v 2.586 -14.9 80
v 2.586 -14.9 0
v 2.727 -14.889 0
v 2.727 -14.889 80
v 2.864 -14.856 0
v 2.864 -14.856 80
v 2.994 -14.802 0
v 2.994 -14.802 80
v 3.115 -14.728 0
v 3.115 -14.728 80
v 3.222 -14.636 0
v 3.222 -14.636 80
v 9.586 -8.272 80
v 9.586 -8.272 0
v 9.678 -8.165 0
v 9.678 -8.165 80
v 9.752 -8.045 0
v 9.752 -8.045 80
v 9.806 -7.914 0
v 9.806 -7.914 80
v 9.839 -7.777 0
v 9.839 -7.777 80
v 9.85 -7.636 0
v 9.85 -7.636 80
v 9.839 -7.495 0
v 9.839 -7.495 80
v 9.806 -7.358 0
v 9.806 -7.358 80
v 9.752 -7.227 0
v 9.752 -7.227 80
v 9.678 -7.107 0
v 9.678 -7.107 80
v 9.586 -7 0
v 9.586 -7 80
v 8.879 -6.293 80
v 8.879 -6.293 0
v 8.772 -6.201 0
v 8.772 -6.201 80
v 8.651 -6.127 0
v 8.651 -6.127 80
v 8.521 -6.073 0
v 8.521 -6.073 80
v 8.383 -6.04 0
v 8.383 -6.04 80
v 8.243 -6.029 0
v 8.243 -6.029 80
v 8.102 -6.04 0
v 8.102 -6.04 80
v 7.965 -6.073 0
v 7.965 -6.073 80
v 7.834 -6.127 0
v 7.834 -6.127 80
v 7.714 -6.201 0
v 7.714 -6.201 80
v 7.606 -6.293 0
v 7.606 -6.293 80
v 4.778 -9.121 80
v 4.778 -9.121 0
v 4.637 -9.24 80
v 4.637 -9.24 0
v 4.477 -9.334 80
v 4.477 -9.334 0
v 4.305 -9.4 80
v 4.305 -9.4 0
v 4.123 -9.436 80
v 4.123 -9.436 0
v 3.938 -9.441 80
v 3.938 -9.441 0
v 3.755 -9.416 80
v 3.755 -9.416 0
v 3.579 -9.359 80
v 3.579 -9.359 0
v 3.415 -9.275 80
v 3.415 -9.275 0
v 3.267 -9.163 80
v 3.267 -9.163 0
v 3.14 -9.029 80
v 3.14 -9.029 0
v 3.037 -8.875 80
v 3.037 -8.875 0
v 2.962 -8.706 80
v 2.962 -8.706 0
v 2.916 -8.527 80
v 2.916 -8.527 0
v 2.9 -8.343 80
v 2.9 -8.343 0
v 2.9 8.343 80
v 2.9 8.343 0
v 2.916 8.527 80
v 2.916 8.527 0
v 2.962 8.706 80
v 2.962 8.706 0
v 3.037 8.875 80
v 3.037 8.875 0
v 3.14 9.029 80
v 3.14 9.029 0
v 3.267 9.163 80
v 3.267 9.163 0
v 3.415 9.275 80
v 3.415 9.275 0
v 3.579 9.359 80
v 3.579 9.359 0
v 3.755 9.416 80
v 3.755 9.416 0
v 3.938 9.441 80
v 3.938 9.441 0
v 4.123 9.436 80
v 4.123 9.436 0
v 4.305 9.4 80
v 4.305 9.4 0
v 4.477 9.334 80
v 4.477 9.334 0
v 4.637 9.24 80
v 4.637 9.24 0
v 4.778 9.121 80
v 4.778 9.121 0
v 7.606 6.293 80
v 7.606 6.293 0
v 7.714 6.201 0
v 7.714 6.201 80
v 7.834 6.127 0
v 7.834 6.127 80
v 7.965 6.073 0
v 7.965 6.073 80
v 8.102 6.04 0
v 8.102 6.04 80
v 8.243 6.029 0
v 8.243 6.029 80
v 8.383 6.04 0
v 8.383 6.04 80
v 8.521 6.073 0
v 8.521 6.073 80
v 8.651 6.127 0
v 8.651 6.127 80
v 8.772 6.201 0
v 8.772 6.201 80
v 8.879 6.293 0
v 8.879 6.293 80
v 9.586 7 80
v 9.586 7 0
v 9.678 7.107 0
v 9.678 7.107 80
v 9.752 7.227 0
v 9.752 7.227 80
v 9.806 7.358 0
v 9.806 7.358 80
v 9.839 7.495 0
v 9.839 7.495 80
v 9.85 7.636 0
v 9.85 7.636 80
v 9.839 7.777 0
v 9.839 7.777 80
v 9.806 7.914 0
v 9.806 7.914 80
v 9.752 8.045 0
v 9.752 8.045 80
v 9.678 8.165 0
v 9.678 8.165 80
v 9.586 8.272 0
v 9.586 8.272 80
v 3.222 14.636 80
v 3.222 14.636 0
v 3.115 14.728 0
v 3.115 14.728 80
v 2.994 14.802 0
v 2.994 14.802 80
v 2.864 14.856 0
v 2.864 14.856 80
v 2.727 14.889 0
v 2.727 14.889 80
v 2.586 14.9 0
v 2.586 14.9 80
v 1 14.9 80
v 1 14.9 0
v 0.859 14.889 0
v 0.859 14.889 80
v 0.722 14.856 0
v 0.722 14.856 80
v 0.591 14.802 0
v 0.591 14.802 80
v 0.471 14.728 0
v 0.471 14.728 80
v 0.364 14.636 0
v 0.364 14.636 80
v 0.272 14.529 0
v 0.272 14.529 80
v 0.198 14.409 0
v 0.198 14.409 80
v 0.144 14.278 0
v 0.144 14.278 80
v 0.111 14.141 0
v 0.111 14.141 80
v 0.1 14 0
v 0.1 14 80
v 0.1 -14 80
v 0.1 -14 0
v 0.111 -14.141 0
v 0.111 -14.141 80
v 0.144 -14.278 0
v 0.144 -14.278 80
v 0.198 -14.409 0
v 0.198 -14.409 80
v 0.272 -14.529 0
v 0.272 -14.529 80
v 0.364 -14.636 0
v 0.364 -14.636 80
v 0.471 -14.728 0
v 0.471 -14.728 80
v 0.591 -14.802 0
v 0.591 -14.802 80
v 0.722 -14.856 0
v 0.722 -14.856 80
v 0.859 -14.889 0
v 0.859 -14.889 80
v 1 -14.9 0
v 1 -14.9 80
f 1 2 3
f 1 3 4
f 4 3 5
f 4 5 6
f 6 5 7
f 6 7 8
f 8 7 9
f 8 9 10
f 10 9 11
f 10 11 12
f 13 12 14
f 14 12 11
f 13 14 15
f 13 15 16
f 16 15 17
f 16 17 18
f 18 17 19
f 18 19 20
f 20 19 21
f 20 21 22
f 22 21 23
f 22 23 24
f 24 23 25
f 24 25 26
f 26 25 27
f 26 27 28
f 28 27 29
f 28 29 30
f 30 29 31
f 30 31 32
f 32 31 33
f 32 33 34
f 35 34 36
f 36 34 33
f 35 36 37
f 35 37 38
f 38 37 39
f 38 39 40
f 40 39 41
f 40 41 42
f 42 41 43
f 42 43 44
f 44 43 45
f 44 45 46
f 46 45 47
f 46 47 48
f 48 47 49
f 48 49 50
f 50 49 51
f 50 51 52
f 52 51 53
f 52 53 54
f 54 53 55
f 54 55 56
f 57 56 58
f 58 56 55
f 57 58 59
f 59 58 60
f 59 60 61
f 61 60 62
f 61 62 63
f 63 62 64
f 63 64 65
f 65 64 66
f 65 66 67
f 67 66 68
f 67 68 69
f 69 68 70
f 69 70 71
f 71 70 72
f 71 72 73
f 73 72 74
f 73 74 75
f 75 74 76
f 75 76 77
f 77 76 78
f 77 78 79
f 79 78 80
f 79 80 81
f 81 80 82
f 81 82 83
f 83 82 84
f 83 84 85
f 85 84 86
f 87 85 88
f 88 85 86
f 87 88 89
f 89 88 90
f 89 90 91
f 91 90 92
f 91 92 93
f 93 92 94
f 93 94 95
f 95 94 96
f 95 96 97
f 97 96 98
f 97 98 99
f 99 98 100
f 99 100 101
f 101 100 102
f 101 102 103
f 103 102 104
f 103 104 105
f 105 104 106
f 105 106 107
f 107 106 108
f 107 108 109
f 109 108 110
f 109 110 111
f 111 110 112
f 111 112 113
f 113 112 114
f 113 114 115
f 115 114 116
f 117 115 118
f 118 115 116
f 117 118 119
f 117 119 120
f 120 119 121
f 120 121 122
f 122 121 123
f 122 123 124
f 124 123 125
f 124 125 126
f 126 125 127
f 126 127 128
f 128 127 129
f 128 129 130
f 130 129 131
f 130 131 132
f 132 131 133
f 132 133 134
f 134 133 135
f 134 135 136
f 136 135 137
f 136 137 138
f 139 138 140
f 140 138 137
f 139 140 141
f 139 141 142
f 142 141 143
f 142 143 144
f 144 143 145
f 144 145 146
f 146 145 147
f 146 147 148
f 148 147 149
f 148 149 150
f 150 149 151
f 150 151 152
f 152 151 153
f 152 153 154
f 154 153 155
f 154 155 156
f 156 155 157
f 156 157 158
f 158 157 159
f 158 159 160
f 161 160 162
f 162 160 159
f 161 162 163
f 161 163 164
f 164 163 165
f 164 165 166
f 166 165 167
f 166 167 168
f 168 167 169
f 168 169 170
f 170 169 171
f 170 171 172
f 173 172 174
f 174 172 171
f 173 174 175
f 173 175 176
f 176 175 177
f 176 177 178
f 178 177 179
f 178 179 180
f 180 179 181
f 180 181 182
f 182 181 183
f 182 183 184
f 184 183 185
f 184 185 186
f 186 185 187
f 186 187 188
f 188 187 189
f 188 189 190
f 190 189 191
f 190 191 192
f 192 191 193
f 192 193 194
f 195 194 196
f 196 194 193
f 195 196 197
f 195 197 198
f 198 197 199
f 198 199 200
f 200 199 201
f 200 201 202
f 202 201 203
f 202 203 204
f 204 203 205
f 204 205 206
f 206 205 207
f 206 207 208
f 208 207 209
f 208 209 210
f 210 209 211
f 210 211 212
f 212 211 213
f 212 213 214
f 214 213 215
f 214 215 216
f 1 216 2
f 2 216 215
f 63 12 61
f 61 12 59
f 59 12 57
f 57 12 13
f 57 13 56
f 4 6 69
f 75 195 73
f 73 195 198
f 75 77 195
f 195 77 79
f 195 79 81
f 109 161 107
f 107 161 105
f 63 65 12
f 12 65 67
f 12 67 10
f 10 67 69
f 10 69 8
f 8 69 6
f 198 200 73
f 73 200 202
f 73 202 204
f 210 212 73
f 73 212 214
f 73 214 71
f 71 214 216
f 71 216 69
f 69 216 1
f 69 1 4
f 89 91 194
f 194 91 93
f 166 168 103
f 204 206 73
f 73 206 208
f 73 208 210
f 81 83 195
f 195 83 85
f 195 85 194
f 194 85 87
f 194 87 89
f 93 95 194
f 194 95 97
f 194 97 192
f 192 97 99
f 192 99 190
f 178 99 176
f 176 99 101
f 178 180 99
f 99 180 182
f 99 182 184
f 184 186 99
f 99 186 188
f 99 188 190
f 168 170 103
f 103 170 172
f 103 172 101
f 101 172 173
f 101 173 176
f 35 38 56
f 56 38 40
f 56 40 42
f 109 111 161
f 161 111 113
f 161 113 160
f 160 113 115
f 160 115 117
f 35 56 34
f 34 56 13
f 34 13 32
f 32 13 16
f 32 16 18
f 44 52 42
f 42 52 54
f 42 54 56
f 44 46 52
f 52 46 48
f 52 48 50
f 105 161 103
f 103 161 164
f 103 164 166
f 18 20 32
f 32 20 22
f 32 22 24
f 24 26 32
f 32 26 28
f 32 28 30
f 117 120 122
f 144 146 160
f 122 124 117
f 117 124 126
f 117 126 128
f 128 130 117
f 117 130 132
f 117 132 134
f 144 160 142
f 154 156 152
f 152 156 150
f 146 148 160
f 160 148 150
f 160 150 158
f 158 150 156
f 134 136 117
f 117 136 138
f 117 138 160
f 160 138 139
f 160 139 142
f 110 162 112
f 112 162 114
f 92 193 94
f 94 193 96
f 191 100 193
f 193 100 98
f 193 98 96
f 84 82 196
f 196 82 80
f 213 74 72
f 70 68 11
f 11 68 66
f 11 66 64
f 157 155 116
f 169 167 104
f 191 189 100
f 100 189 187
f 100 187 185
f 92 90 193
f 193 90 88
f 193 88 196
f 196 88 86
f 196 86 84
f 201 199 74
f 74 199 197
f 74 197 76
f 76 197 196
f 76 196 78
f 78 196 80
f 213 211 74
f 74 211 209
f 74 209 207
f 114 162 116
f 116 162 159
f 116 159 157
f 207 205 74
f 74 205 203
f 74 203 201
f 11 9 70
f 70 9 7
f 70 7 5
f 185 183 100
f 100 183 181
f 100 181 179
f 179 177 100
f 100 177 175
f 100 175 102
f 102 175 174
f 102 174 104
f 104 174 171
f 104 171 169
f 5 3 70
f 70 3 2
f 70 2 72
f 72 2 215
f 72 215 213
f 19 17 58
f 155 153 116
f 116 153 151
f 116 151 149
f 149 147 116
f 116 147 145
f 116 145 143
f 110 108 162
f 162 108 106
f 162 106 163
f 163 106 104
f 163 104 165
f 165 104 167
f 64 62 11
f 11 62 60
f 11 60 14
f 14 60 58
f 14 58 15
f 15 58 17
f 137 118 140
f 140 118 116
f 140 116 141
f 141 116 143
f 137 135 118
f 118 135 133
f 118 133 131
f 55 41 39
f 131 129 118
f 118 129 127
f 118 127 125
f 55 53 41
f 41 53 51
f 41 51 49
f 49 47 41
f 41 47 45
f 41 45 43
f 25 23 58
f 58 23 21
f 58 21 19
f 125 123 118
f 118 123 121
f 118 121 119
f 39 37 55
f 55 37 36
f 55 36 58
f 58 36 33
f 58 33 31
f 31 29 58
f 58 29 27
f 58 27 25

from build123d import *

# Parameters (mm, degrees)
BOSS_EXTRU_1_DEPTH = 80


with BuildPart() as part:
    # Esquisse1 → Boss.-Extru.1 (new body)
    with BuildSketch(Plane.XY):
        with BuildLine():
            Line((2.9, 0), (0.1, 0))
            Line((0.1, 0), (0.1, -14))
            ThreePointArc((0.1, -14), (0.363603897, -14.636396103), (1, -14.9))
            Line((1, -14.9), (2.585786438, -14.9))
            ThreePointArc((2.585786438, -14.9), (2.930201527, -14.831491579), (3.222182541, -14.636396103))
            Line((3.222182541, -14.636396103), (9.586143571, -8.272435072))
            ThreePointArc((9.586143571, -8.272435072), (9.849747468, -7.636038969), (9.586143571, -6.999642866))
            Line((9.586143571, -6.999642866), (8.87903679, -6.292536085))
            ThreePointArc((8.87903679, -6.292536085), (8.242640687, -6.028932188), (7.606244584, -6.292536085))
            Line((7.606244584, -6.292536085), (4.777817459, -9.12096321))
            ThreePointArc((4.777817459, -9.12096321), (3.579048224, -9.359413236), (2.9, -8.343145751))
            Line((2.9, -8.343145751), (2.9, 0))
        make_face()
        with BuildLine():
            Line((0.1, 14), (0.1, 0))
            Line((0.1, 0), (2.9, 0))
            Line((2.9, 0), (2.9, 8.343145751))
            ThreePointArc((2.9, 8.343145751), (3.579048224, 9.359413236), (4.777817459, 9.12096321))
            Line((4.777817459, 9.12096321), (7.606244584, 6.292536085))
            ThreePointArc((7.606244584, 6.292536085), (8.242640687, 6.028932188), (8.87903679, 6.292536085))
            Line((8.87903679, 6.292536085), (9.586143571, 6.999642866))
            ThreePointArc((9.586143571, 6.999642866), (9.849747468, 7.636038969), (9.586143571, 8.272435072))
            Line((9.586143571, 8.272435072), (3.222182541, 14.636396103))
            ThreePointArc((3.222182541, 14.636396103), (2.930201527, 14.831491579), (2.585786438, 14.9))
            Line((2.585786438, 14.9), (1, 14.9))
            ThreePointArc((1, 14.9), (0.363603897, 14.636396103), (0.1, 14))
        make_face()
    extrude(amount=BOSS_EXTRU_1_DEPTH)


solid = part.part
